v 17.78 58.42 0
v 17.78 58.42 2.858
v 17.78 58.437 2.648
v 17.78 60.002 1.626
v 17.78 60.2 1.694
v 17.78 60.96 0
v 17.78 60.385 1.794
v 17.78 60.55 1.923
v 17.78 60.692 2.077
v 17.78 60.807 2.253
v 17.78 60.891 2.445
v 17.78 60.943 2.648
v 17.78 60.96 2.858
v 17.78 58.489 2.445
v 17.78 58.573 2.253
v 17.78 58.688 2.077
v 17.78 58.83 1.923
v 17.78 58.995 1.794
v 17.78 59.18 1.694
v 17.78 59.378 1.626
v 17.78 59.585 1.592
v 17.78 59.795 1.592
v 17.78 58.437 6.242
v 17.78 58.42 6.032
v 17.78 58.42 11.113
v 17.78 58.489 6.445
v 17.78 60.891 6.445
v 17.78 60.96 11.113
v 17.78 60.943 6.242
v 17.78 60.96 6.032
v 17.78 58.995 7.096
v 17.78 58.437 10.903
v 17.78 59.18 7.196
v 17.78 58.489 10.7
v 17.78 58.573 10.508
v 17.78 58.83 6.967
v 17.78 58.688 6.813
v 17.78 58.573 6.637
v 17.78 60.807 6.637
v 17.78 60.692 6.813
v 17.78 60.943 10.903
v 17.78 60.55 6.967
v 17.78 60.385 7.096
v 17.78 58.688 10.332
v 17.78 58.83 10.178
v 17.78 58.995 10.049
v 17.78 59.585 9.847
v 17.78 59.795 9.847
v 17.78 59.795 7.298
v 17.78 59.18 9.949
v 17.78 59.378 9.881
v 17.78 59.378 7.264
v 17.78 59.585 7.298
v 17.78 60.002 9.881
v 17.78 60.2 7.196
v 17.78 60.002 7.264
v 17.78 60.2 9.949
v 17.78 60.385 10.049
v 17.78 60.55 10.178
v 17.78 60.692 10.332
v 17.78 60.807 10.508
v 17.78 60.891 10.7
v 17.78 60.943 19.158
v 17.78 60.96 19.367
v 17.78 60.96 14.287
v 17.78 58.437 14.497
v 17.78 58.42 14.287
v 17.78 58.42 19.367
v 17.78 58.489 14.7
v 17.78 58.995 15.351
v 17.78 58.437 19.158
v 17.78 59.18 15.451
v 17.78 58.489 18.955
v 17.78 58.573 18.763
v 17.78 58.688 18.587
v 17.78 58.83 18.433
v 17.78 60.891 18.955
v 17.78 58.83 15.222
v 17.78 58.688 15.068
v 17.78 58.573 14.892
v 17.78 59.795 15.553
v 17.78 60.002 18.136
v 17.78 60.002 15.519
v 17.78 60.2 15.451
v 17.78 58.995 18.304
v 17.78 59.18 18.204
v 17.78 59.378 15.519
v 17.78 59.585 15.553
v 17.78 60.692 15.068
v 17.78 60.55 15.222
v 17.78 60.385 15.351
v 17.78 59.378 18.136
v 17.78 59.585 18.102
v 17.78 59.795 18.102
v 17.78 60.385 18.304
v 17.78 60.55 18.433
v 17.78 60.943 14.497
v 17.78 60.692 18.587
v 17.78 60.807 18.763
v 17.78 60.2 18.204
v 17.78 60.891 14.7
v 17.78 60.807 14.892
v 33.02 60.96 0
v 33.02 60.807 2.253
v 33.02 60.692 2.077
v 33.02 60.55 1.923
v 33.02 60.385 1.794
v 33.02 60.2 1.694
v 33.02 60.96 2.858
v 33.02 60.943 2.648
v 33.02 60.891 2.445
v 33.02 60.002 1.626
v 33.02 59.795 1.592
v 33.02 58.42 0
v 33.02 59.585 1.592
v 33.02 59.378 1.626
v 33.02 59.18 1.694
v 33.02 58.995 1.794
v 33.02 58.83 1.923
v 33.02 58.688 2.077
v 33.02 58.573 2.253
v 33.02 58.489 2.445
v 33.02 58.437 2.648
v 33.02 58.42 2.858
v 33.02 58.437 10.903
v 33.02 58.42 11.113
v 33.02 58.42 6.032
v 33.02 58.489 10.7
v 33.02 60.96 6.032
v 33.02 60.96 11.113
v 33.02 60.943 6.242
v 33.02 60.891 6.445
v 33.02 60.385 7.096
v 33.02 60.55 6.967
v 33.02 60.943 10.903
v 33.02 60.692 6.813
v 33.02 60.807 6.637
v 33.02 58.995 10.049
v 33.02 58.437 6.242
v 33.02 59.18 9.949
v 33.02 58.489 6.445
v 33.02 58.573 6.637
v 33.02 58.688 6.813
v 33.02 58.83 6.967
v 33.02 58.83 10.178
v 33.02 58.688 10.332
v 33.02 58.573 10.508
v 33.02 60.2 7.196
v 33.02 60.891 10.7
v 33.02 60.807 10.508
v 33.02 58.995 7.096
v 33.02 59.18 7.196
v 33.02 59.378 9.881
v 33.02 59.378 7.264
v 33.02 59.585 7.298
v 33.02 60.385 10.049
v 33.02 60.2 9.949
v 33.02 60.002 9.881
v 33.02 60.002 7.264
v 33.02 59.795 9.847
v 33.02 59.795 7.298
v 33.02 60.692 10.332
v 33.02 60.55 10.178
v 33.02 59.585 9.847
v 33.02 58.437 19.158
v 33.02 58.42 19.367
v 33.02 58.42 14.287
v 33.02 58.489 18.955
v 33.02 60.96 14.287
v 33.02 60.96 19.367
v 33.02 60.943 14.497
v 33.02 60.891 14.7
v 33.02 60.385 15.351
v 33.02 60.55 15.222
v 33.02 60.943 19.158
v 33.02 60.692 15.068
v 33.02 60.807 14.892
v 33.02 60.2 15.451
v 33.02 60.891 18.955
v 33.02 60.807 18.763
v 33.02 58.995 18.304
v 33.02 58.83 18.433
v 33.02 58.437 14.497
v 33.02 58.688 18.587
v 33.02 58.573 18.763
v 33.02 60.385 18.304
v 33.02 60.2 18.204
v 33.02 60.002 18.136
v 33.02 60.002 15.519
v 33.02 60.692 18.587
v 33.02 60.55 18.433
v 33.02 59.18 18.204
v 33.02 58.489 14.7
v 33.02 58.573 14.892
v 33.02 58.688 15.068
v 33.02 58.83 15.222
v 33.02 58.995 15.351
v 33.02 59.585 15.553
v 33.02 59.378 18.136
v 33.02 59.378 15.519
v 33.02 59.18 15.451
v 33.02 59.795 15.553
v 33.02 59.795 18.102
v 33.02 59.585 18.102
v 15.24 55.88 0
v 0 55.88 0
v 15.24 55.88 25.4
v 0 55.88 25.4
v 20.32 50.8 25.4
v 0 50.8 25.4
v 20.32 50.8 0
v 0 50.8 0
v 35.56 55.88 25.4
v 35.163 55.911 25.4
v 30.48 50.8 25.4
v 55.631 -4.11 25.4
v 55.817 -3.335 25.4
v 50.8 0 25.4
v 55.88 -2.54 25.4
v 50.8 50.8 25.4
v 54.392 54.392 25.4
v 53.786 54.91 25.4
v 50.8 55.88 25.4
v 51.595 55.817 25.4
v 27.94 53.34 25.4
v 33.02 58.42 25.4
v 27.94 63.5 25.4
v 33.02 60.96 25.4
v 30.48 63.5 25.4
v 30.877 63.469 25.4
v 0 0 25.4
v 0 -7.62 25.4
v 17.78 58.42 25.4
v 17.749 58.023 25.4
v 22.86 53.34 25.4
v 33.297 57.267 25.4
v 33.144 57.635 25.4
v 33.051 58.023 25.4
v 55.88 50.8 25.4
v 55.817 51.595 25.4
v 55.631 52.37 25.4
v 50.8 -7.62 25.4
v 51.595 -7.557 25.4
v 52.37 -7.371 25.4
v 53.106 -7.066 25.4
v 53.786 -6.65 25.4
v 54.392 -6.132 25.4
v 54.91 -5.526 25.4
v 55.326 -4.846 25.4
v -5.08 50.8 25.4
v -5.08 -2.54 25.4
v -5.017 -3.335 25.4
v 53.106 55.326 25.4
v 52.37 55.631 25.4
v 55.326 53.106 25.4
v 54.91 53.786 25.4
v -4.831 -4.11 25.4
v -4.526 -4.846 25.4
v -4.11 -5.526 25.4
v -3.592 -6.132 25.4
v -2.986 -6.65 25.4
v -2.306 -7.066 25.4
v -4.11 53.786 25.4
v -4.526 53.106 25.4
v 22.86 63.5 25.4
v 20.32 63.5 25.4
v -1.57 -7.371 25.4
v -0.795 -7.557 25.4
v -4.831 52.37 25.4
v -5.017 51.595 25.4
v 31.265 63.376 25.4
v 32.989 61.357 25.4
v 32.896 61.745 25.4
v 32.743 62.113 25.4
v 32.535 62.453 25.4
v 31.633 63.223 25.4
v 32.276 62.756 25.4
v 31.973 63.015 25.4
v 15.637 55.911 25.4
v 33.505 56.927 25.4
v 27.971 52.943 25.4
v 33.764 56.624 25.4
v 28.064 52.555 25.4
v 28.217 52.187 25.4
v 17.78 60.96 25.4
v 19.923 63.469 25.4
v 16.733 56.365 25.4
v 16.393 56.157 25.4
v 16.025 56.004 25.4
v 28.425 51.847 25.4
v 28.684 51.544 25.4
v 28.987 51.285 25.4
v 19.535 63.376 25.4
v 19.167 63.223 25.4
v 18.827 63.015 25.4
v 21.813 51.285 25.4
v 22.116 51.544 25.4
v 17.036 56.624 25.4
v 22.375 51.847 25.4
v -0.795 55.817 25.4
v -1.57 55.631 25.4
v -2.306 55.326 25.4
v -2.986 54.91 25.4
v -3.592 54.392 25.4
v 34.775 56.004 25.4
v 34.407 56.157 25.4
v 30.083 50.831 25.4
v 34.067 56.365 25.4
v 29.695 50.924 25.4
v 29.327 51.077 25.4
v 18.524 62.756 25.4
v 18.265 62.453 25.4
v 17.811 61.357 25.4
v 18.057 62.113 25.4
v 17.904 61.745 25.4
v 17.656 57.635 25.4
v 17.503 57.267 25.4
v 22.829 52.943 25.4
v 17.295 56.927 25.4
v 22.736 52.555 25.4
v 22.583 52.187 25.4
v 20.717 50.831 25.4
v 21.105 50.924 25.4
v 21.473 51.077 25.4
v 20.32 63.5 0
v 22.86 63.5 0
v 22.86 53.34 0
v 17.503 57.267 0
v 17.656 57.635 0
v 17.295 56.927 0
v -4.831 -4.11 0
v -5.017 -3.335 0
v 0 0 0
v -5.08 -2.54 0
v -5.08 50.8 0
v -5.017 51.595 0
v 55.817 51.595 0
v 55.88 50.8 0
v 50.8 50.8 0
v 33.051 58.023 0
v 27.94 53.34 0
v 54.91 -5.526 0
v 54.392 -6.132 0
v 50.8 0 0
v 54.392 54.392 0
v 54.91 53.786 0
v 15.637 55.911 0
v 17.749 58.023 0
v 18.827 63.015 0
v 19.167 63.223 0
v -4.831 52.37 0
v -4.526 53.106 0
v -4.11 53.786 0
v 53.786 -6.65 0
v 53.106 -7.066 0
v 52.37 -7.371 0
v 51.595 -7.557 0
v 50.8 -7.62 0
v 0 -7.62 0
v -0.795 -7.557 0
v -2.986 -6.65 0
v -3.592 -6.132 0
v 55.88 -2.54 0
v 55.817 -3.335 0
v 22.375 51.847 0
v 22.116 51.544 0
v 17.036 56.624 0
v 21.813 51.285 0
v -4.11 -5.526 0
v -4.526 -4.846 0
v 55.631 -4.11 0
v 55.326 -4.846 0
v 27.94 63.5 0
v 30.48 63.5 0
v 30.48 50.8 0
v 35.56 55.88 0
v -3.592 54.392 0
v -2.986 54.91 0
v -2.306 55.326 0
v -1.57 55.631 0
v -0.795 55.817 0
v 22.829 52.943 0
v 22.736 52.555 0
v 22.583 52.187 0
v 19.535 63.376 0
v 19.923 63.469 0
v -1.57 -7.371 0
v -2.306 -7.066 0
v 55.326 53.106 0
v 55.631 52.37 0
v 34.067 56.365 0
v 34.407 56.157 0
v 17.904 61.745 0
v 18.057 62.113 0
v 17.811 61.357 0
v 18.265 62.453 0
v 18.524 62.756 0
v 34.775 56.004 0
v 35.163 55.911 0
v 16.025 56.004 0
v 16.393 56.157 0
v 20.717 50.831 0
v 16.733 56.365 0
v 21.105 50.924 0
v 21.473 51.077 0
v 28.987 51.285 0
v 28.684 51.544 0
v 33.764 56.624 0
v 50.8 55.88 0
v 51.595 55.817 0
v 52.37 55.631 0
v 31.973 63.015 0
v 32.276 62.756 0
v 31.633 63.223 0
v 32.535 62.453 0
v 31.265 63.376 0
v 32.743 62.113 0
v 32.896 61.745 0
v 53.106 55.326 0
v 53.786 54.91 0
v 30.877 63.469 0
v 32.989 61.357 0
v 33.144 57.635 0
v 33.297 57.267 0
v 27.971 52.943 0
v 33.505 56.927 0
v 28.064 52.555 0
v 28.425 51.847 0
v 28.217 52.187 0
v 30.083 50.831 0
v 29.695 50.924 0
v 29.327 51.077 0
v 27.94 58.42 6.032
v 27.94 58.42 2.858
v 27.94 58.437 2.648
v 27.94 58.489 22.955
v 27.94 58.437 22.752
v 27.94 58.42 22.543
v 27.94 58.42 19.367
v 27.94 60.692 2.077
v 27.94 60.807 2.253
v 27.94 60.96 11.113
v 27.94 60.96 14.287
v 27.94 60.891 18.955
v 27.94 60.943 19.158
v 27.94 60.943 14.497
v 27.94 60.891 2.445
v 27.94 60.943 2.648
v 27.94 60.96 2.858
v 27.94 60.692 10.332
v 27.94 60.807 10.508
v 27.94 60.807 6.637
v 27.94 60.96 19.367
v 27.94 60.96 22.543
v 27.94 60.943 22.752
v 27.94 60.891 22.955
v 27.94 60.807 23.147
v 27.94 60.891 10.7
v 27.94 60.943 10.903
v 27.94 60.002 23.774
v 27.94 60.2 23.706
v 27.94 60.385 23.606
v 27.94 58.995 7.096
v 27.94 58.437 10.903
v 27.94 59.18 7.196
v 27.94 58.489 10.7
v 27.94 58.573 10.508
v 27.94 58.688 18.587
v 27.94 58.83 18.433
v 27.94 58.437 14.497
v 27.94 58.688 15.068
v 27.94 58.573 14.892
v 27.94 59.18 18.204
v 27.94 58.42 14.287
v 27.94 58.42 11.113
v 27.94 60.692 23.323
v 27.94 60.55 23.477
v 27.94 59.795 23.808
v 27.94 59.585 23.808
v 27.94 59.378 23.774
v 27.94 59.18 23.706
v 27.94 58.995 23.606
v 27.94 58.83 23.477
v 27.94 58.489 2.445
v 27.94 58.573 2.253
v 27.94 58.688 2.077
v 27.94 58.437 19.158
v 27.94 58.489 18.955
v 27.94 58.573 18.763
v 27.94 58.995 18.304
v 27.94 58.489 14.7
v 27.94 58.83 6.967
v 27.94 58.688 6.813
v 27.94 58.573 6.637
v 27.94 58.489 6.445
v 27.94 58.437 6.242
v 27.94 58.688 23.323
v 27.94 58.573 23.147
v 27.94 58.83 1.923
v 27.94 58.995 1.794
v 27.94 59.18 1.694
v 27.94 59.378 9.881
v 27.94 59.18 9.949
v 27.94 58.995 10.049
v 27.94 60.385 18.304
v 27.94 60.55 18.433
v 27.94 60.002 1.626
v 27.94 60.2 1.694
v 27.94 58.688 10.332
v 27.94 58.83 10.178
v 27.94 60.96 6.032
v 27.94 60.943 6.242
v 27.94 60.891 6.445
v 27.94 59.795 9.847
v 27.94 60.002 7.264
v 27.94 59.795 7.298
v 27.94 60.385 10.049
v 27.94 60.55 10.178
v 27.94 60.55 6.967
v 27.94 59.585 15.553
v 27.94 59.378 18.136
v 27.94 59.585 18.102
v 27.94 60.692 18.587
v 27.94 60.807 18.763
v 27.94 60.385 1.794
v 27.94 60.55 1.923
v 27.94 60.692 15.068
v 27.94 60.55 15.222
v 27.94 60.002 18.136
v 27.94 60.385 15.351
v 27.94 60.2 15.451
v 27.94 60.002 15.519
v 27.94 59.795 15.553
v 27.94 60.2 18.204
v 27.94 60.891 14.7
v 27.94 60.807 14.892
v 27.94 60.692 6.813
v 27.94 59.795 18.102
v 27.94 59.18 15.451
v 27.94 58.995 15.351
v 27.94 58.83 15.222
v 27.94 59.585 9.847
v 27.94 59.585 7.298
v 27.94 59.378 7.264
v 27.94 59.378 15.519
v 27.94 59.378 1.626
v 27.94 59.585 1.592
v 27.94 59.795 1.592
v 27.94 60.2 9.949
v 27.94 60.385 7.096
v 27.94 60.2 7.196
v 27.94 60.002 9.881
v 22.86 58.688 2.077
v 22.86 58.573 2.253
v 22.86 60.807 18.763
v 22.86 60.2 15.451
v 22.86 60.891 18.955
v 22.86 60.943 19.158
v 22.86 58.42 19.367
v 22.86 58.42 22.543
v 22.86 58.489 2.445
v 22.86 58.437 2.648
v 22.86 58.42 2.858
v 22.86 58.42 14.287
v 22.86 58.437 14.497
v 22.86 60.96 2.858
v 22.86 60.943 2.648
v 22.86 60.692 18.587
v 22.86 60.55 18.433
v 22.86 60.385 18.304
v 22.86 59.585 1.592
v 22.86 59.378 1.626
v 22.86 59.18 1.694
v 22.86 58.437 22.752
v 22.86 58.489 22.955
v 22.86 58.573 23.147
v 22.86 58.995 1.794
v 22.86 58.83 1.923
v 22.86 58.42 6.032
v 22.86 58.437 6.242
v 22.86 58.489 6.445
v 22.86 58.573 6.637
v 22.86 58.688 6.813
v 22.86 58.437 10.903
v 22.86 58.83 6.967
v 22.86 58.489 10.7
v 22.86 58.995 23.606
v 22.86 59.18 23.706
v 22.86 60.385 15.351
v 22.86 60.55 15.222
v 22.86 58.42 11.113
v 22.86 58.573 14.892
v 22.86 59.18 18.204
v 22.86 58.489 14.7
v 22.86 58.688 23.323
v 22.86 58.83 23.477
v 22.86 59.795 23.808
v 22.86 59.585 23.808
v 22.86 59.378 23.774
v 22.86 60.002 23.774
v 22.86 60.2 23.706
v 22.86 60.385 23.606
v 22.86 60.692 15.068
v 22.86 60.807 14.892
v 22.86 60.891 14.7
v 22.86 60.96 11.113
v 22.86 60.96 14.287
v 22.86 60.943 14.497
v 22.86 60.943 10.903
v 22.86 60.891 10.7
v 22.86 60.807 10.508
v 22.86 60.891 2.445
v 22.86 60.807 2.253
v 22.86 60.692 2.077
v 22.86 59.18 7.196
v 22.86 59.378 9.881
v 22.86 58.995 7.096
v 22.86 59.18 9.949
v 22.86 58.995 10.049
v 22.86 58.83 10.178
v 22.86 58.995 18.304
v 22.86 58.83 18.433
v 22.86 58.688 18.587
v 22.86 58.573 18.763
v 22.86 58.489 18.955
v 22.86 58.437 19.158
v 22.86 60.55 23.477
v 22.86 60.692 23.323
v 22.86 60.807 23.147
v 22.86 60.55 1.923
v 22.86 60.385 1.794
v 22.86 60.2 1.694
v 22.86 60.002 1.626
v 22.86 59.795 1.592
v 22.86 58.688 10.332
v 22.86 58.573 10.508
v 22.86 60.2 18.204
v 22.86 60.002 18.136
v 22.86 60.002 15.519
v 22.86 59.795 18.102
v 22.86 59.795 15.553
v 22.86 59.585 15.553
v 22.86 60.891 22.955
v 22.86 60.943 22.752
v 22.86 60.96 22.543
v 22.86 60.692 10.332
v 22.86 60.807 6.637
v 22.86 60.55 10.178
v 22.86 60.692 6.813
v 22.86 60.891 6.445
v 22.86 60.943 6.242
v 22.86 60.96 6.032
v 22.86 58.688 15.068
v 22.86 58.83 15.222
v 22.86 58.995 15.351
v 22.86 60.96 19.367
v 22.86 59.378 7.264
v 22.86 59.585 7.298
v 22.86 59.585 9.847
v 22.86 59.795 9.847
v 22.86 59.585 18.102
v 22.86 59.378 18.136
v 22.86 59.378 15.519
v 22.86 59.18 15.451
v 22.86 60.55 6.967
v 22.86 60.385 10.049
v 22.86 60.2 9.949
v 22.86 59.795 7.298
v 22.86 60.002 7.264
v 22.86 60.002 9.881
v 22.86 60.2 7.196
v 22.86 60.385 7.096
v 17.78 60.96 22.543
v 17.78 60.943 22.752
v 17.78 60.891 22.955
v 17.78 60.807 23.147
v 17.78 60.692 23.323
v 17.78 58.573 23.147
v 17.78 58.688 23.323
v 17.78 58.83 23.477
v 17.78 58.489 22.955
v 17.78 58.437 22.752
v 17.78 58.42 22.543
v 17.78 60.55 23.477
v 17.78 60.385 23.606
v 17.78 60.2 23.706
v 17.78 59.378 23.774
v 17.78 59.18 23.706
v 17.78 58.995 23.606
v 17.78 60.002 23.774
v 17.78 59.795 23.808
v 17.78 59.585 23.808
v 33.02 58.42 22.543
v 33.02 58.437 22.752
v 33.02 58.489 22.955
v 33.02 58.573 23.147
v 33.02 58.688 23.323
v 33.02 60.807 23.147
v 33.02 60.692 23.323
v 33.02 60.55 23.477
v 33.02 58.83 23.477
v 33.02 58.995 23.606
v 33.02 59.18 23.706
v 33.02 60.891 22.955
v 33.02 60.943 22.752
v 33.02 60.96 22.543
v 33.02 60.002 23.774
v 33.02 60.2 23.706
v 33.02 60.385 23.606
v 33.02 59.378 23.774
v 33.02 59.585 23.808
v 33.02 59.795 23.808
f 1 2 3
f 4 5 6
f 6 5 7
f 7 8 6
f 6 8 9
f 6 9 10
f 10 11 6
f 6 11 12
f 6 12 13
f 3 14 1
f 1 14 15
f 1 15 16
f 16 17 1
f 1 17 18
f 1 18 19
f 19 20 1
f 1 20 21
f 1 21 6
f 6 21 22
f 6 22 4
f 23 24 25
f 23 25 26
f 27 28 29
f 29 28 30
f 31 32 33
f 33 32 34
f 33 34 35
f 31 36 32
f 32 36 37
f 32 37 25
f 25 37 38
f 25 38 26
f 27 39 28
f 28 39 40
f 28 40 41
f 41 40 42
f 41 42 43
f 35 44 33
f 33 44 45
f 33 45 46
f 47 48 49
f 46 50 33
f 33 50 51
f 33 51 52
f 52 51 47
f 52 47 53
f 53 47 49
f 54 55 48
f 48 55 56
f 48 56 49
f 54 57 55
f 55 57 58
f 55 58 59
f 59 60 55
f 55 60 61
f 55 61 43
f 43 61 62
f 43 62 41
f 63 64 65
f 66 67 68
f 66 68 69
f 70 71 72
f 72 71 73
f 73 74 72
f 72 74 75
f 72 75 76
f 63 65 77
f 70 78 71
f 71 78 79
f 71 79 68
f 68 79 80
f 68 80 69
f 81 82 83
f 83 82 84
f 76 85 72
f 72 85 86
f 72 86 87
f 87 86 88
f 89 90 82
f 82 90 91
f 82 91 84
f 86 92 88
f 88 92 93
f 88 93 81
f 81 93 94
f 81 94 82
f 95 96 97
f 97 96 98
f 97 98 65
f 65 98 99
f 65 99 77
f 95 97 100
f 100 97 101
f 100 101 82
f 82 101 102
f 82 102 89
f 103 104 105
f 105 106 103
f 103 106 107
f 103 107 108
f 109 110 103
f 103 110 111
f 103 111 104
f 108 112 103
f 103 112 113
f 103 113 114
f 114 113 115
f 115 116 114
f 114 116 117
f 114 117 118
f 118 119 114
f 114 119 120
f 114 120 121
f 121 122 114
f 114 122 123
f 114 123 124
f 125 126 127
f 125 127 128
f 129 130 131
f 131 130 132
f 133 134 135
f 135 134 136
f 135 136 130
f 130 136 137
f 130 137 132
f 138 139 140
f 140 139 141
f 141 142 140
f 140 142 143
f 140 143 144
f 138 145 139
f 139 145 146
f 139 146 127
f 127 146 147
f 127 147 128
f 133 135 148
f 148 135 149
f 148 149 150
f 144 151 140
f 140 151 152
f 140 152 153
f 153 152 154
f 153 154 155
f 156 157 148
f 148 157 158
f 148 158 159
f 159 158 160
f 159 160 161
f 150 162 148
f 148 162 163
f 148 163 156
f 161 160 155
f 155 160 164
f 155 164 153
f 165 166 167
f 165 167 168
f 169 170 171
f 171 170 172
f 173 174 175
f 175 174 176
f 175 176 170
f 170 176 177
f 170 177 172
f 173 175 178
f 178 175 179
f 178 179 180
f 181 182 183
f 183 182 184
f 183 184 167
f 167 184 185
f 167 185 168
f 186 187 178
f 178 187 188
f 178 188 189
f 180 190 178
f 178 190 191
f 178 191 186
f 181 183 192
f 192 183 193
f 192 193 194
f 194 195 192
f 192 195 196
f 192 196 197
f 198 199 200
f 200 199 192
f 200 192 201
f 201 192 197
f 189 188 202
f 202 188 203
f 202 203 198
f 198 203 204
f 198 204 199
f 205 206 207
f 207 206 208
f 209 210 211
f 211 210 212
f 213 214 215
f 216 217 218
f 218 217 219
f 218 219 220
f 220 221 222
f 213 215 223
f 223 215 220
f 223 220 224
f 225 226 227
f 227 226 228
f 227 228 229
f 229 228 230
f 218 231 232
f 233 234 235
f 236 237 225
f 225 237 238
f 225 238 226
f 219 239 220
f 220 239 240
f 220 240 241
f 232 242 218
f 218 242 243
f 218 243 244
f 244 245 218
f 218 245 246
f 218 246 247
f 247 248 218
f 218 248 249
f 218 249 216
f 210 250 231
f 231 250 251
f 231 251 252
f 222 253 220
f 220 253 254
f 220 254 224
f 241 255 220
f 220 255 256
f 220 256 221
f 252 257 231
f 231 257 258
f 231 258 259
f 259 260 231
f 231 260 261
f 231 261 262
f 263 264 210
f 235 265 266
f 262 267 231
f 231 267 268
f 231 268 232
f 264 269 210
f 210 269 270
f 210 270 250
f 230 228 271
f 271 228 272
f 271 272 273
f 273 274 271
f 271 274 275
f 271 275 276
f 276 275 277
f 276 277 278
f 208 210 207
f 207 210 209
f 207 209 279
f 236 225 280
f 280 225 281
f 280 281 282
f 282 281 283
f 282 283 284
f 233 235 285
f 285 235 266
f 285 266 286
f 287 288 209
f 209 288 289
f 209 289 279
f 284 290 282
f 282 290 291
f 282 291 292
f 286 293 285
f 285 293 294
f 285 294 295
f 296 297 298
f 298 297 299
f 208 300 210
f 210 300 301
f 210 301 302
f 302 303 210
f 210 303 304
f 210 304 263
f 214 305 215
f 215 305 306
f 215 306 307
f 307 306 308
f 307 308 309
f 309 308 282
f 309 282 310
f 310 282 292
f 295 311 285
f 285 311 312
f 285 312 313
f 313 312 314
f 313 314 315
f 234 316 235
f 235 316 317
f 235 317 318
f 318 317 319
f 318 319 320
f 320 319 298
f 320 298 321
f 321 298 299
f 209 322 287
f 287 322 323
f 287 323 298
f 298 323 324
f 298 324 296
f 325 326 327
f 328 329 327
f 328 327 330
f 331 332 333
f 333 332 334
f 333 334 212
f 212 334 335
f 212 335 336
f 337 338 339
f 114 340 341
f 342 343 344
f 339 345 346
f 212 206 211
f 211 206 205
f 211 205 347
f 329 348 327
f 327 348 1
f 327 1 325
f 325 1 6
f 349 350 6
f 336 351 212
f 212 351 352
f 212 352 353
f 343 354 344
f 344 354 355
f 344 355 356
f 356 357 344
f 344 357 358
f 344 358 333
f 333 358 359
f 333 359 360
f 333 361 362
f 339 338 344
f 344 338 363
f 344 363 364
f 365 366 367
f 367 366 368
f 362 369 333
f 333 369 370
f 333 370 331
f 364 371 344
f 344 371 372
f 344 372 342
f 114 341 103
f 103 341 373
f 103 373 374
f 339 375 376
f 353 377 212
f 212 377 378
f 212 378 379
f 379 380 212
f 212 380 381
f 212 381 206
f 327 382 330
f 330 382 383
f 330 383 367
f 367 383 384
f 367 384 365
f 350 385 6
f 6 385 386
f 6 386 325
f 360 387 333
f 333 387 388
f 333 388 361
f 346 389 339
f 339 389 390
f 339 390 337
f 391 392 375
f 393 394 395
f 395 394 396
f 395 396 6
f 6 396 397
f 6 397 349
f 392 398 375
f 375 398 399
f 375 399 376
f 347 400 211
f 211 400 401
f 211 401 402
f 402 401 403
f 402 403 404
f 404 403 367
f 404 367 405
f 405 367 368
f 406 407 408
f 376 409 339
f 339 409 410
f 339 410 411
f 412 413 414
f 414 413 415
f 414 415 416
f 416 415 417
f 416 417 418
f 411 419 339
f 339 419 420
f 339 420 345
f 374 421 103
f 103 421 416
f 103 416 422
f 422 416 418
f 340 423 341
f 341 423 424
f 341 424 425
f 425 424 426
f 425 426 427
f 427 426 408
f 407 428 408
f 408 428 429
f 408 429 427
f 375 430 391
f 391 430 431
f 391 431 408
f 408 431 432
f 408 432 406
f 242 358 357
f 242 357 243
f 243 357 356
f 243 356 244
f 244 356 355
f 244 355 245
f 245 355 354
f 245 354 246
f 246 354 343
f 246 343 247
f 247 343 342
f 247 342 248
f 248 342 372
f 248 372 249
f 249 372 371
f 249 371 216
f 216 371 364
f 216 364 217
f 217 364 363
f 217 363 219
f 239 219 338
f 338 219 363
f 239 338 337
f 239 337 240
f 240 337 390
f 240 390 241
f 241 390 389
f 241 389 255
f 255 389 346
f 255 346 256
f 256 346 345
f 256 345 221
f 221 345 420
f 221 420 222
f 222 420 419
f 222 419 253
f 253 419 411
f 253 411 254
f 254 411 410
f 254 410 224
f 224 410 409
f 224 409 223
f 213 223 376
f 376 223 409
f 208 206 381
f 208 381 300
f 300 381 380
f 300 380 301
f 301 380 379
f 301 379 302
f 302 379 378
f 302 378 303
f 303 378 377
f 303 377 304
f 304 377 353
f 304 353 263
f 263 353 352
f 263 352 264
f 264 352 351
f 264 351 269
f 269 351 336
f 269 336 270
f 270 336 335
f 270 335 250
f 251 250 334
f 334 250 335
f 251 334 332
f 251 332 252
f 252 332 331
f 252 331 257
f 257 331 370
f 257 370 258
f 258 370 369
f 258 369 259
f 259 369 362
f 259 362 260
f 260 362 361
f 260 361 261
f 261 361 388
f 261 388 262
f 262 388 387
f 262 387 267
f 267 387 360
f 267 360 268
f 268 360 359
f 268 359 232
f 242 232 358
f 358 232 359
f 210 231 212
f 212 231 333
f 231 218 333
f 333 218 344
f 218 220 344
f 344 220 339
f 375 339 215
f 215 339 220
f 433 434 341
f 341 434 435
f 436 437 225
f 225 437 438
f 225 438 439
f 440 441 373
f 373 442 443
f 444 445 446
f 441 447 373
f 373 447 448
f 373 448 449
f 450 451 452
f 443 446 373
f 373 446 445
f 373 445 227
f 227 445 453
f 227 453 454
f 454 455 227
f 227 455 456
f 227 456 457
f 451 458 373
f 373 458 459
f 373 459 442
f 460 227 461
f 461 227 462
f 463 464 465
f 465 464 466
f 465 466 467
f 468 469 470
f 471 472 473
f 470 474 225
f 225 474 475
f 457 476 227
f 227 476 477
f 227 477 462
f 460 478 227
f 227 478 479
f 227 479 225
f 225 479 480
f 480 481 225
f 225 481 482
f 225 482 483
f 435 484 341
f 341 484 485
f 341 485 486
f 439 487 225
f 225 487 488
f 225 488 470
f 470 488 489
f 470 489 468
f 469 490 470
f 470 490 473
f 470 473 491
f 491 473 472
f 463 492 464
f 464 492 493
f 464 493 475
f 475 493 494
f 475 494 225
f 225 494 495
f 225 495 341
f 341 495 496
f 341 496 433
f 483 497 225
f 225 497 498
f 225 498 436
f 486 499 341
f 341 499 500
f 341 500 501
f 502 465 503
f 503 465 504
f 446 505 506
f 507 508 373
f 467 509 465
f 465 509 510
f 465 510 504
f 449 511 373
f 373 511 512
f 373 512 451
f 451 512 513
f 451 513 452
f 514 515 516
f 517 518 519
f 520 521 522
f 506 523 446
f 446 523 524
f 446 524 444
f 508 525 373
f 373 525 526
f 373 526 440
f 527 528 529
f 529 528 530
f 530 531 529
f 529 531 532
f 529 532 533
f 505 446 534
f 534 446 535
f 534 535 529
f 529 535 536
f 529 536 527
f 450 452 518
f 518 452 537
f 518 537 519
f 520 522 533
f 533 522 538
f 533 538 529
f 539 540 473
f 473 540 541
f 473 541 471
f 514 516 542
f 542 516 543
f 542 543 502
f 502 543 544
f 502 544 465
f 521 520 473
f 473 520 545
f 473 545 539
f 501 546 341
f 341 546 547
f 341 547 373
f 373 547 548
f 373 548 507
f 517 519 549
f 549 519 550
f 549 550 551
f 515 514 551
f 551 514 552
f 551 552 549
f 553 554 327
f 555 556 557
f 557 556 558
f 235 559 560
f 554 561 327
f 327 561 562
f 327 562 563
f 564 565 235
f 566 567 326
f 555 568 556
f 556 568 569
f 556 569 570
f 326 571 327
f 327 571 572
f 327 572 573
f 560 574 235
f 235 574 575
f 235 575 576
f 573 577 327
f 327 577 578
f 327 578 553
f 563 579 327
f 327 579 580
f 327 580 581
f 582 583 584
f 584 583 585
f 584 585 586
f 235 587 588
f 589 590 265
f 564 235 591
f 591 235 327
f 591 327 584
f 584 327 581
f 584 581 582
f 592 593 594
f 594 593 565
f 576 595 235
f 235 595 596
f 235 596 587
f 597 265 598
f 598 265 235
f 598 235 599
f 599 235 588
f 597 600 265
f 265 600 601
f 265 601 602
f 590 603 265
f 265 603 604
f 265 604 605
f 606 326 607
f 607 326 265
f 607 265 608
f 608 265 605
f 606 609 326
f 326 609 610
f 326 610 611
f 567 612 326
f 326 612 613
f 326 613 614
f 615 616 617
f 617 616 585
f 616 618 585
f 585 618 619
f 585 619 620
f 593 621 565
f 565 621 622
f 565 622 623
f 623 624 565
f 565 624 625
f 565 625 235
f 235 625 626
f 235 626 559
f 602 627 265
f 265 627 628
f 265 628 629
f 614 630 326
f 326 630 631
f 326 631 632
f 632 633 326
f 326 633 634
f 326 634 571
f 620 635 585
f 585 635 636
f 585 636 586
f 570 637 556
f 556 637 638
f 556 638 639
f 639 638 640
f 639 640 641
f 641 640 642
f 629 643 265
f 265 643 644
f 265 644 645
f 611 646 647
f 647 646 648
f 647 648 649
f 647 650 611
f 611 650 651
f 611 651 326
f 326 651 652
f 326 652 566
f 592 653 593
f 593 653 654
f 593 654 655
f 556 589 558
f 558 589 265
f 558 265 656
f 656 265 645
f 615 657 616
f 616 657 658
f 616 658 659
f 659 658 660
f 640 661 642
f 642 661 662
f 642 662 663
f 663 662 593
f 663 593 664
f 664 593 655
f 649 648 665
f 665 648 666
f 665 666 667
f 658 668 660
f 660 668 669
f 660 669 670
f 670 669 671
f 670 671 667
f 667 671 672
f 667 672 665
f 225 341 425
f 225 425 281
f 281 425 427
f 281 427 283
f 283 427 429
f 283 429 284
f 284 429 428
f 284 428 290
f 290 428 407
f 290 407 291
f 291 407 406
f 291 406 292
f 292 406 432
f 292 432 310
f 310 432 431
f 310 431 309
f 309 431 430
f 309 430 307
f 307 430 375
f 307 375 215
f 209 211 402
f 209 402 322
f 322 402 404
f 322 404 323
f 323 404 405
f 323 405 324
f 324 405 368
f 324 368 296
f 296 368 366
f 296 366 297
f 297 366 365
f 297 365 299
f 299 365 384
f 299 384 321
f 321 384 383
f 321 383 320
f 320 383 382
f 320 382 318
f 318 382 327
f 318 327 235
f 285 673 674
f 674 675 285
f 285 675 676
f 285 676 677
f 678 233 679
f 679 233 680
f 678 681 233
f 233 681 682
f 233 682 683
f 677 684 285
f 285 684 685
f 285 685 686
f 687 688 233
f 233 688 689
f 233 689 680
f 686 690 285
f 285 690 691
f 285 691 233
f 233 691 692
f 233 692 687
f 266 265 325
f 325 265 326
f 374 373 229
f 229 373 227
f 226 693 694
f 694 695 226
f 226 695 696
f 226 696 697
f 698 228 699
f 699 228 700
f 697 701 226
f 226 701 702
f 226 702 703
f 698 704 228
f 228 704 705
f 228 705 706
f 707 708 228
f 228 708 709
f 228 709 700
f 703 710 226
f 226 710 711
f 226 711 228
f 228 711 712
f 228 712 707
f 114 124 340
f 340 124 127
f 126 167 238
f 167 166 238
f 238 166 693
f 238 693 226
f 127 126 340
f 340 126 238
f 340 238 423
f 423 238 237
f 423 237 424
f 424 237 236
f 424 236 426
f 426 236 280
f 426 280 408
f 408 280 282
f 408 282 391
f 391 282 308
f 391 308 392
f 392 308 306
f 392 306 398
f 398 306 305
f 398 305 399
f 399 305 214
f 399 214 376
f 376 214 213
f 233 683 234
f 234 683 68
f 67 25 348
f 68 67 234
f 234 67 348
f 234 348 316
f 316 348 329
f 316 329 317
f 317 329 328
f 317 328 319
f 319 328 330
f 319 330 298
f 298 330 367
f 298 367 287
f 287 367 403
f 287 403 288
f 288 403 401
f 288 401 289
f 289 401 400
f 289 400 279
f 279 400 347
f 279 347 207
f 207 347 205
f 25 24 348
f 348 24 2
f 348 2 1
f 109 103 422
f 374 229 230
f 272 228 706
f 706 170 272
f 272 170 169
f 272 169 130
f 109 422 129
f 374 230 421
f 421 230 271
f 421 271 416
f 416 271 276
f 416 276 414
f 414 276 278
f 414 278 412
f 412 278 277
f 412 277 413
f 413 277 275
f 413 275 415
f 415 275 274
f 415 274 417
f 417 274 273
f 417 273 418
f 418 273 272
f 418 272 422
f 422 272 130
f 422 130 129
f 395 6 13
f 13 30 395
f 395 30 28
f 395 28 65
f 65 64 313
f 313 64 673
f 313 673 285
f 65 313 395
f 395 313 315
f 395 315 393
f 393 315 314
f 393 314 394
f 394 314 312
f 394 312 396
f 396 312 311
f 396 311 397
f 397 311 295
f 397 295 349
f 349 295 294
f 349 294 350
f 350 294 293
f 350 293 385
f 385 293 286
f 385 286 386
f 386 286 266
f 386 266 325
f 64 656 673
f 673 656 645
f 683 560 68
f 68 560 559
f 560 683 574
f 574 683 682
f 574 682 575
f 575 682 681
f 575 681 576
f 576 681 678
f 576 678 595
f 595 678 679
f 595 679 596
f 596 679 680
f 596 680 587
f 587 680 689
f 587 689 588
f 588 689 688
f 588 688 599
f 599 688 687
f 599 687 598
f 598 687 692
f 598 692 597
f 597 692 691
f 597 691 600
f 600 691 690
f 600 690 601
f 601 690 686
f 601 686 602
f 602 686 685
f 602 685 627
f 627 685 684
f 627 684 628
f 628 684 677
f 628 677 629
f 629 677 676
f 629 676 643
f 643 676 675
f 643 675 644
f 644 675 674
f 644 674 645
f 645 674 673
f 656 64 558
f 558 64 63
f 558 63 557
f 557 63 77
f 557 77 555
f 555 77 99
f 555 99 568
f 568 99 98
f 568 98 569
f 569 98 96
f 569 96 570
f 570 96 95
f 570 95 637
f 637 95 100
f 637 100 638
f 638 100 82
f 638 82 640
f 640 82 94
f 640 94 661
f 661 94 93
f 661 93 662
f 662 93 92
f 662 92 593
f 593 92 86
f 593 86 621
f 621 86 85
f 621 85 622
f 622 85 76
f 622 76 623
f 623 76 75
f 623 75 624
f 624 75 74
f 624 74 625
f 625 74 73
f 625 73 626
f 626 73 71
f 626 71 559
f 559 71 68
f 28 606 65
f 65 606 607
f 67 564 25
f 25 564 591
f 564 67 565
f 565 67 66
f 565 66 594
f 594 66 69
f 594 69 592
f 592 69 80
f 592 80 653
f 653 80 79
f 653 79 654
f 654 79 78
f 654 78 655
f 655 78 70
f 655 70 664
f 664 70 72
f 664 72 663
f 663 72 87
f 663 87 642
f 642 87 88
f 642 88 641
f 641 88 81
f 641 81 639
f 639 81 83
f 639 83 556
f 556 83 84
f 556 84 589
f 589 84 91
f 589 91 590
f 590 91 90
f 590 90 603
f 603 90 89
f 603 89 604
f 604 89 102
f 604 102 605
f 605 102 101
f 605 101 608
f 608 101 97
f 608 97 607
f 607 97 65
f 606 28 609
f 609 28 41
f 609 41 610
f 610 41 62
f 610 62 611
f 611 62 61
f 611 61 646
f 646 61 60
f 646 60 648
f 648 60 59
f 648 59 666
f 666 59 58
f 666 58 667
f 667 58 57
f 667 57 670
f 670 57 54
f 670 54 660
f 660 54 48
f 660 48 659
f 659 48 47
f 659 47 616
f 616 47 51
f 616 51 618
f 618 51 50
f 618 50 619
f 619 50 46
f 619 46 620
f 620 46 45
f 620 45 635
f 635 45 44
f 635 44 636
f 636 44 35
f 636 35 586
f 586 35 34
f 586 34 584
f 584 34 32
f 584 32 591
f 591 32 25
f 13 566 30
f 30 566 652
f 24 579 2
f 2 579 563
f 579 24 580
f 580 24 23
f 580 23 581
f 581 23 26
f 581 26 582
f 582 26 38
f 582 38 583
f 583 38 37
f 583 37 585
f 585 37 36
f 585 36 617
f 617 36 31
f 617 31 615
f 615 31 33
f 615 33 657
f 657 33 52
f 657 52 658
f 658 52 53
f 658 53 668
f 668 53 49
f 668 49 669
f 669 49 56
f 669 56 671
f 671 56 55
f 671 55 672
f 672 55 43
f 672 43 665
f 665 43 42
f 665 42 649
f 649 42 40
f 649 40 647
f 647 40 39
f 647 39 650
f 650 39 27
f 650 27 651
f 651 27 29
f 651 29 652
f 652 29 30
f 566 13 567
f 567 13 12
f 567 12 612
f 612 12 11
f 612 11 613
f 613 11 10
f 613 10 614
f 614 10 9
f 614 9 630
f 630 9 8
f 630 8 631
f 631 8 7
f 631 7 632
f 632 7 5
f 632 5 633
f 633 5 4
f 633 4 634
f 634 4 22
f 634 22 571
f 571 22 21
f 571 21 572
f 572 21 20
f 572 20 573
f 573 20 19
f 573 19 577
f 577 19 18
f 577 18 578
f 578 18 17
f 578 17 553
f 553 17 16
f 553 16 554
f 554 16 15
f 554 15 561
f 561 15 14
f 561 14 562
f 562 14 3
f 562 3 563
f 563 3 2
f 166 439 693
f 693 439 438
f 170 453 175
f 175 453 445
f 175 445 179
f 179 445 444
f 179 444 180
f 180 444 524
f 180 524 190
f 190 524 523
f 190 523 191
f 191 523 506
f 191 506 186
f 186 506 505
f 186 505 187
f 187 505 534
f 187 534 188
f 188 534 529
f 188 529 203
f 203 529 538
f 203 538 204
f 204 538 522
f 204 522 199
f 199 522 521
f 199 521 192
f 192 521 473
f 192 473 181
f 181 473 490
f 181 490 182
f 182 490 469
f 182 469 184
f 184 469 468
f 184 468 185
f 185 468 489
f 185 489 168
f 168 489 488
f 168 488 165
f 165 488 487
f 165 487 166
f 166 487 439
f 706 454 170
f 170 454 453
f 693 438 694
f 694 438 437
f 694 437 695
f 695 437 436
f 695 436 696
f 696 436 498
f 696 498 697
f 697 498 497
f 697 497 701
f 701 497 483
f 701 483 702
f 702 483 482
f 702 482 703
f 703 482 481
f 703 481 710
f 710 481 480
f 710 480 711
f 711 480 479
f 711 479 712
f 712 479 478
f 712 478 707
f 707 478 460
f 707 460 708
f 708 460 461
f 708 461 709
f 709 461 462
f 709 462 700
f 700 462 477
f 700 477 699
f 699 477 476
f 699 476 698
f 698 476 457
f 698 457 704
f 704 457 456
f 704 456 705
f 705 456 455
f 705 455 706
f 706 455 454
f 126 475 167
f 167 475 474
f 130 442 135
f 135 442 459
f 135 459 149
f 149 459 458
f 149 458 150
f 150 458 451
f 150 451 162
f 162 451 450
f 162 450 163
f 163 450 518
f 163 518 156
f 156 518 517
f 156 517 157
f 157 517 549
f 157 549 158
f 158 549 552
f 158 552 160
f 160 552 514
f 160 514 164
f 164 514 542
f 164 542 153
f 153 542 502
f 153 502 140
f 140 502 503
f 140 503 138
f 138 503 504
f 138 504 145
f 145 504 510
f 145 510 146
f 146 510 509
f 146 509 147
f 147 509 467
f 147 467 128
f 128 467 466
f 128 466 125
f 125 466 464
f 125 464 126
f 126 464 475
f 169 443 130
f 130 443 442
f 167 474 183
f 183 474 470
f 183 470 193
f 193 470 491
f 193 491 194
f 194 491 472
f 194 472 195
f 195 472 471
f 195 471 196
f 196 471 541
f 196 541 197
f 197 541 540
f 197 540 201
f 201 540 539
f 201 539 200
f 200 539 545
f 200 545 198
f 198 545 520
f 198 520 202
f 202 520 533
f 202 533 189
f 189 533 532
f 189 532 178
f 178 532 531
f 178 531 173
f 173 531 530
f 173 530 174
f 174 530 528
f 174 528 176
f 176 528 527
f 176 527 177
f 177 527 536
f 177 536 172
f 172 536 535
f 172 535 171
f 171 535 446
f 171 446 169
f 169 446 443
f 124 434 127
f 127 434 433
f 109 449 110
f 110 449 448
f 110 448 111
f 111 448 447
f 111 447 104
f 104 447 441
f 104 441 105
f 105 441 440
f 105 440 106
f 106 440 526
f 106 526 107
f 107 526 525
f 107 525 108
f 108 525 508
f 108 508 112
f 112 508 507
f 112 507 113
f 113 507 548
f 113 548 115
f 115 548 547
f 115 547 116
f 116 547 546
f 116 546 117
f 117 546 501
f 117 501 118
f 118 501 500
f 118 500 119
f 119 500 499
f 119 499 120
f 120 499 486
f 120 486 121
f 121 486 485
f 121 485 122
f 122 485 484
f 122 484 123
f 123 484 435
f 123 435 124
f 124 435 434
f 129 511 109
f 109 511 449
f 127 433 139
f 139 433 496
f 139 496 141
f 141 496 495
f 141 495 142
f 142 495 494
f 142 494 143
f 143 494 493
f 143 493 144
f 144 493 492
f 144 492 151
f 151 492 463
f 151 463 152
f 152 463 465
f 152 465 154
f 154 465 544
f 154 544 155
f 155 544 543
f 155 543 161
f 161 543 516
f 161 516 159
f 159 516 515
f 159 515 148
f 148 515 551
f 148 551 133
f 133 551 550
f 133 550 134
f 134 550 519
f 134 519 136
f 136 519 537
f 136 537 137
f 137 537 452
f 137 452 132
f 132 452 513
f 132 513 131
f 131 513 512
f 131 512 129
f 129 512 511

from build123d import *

# Parameters (mm, degrees)
SKETCH1_W           = 50.8
SKETCH1_H           = 50.8
BOSS_EXTRUDE1_DEPTH = 25.4
SKETCH2_W           = 5.08
SKETCH2_H           = 5.08
CUT_EXTRUDE1_DEPTH  = 84.007883963
FILLET1_R           = 2.54
SKETCH3_W           = 5.08
SKETCH3_H           = 7.62
BOSS_EXTRUDE2_DEPTH = 25.4
FILLET2_R           = 2.54
CUT_EXTRUDE2_DEPTH  = 79.288057838


with BuildPart() as part:
    # Sketch1 → Boss-Extrude1 (new body)
    with BuildSketch(Plane.XY):
        with BuildLine():
            Line((0, 55.88), (50.8, 55.88))
            ThreePointArc((50.8, 55.88), (54.392102448, 54.392102448), (55.88, 50.8))
            Line((55.88, 50.8), (55.88, -2.54))
            ThreePointArc((55.88, -2.54), (54.392102448, -6.132102448), (50.8, -7.62))
            Line((50.8, -7.62), (0, -7.62))
            ThreePointArc((0, -7.62), (-3.592102448, -6.132102448), (-5.08, -2.54))
            Line((-5.08, -2.54), (-5.08, 50.8))
            ThreePointArc((-5.08, 50.8), (-3.592102448, 54.392102448), (0, 55.88))
        make_face()
        with Locations((25.4, 25.4)):
            Rectangle(SKETCH1_W, SKETCH1_H, mode=Mode.SUBTRACT)
    extrude(amount=BOSS_EXTRUDE1_DEPTH)

    # Sketch2 → Cut-Extrude1 (cut, through all)
    with BuildSketch(Plane.XY.offset(25.4)):
        with Locations((25.4, 53.34)):
            Rectangle(SKETCH2_W, SKETCH2_H)
    extrude(amount=-CUT_EXTRUDE1_DEPTH, mode=Mode.SUBTRACT)

    # Fillet1
    fillet1_edges = [part.edges().sort_by_distance(p)[0] for p in [
        (22.86, 50.8, 12.7),
        (27.94, 50.8, 12.7),
    ]]
    fillet(fillet1_edges, radius=FILLET1_R)

    # Sketch3 → Boss-Extrude2 (add)
    with BuildSketch(Plane.XY.offset(25.4)):
        with Locations((20.32, 59.69)):
            Rectangle(SKETCH3_W, SKETCH3_H)
        with Locations((30.48, 59.69)):
            Rectangle(SKETCH3_W, SKETCH3_H)
    extrude(amount=-BOSS_EXTRUDE2_DEPTH)

    # Fillet2
    fillet2_edges = [part.edges().sort_by_distance(p)[0] for p in [
        (17.78, 55.88, 12.7),
        (17.78, 63.5, 12.7),
        (33.02, 63.5, 12.7),
        (33.02, 55.88, 12.7),
    ]]
    fillet(fillet2_edges, radius=FILLET2_R)

    # Sketch4 → Cut-Extrude2 (cut, through all)
    with BuildSketch(Plane.ZY.offset(-17.78)):
        with BuildLine():
            Line((2.8575, 60.96), (6.0325, 60.96))
            ThreePointArc((6.0325, 60.96), (7.3025, 59.69), (6.0325, 58.42))
            Line((6.0325, 58.42), (2.8575, 58.42))
            ThreePointArc((2.8575, 58.42), (1.5875, 59.69), (2.8575, 60.96))
        make_face()
        with BuildLine():
            Line((11.1125, 60.96), (14.2875, 60.96))
            ThreePointArc((14.2875, 60.96), (15.5575, 59.69), (14.2875, 58.42))
            Line((14.2875, 58.42), (11.1125, 58.42))
            ThreePointArc((11.1125, 58.42), (9.8425, 59.69), (11.1125, 60.96))
        make_face()
        with BuildLine():
            Line((19.3675, 60.96), (22.5425, 60.96))
            ThreePointArc((22.5425, 60.96), (23.8125, 59.69), (22.5425, 58.42))
            Line((22.5425, 58.42), (19.3675, 58.42))
            ThreePointArc((19.3675, 58.42), (18.0975, 59.69), (19.3675, 60.96))
        make_face()
    extrude(amount=-CUT_EXTRUDE2_DEPTH, mode=Mode.SUBTRACT)


solid = part.part
